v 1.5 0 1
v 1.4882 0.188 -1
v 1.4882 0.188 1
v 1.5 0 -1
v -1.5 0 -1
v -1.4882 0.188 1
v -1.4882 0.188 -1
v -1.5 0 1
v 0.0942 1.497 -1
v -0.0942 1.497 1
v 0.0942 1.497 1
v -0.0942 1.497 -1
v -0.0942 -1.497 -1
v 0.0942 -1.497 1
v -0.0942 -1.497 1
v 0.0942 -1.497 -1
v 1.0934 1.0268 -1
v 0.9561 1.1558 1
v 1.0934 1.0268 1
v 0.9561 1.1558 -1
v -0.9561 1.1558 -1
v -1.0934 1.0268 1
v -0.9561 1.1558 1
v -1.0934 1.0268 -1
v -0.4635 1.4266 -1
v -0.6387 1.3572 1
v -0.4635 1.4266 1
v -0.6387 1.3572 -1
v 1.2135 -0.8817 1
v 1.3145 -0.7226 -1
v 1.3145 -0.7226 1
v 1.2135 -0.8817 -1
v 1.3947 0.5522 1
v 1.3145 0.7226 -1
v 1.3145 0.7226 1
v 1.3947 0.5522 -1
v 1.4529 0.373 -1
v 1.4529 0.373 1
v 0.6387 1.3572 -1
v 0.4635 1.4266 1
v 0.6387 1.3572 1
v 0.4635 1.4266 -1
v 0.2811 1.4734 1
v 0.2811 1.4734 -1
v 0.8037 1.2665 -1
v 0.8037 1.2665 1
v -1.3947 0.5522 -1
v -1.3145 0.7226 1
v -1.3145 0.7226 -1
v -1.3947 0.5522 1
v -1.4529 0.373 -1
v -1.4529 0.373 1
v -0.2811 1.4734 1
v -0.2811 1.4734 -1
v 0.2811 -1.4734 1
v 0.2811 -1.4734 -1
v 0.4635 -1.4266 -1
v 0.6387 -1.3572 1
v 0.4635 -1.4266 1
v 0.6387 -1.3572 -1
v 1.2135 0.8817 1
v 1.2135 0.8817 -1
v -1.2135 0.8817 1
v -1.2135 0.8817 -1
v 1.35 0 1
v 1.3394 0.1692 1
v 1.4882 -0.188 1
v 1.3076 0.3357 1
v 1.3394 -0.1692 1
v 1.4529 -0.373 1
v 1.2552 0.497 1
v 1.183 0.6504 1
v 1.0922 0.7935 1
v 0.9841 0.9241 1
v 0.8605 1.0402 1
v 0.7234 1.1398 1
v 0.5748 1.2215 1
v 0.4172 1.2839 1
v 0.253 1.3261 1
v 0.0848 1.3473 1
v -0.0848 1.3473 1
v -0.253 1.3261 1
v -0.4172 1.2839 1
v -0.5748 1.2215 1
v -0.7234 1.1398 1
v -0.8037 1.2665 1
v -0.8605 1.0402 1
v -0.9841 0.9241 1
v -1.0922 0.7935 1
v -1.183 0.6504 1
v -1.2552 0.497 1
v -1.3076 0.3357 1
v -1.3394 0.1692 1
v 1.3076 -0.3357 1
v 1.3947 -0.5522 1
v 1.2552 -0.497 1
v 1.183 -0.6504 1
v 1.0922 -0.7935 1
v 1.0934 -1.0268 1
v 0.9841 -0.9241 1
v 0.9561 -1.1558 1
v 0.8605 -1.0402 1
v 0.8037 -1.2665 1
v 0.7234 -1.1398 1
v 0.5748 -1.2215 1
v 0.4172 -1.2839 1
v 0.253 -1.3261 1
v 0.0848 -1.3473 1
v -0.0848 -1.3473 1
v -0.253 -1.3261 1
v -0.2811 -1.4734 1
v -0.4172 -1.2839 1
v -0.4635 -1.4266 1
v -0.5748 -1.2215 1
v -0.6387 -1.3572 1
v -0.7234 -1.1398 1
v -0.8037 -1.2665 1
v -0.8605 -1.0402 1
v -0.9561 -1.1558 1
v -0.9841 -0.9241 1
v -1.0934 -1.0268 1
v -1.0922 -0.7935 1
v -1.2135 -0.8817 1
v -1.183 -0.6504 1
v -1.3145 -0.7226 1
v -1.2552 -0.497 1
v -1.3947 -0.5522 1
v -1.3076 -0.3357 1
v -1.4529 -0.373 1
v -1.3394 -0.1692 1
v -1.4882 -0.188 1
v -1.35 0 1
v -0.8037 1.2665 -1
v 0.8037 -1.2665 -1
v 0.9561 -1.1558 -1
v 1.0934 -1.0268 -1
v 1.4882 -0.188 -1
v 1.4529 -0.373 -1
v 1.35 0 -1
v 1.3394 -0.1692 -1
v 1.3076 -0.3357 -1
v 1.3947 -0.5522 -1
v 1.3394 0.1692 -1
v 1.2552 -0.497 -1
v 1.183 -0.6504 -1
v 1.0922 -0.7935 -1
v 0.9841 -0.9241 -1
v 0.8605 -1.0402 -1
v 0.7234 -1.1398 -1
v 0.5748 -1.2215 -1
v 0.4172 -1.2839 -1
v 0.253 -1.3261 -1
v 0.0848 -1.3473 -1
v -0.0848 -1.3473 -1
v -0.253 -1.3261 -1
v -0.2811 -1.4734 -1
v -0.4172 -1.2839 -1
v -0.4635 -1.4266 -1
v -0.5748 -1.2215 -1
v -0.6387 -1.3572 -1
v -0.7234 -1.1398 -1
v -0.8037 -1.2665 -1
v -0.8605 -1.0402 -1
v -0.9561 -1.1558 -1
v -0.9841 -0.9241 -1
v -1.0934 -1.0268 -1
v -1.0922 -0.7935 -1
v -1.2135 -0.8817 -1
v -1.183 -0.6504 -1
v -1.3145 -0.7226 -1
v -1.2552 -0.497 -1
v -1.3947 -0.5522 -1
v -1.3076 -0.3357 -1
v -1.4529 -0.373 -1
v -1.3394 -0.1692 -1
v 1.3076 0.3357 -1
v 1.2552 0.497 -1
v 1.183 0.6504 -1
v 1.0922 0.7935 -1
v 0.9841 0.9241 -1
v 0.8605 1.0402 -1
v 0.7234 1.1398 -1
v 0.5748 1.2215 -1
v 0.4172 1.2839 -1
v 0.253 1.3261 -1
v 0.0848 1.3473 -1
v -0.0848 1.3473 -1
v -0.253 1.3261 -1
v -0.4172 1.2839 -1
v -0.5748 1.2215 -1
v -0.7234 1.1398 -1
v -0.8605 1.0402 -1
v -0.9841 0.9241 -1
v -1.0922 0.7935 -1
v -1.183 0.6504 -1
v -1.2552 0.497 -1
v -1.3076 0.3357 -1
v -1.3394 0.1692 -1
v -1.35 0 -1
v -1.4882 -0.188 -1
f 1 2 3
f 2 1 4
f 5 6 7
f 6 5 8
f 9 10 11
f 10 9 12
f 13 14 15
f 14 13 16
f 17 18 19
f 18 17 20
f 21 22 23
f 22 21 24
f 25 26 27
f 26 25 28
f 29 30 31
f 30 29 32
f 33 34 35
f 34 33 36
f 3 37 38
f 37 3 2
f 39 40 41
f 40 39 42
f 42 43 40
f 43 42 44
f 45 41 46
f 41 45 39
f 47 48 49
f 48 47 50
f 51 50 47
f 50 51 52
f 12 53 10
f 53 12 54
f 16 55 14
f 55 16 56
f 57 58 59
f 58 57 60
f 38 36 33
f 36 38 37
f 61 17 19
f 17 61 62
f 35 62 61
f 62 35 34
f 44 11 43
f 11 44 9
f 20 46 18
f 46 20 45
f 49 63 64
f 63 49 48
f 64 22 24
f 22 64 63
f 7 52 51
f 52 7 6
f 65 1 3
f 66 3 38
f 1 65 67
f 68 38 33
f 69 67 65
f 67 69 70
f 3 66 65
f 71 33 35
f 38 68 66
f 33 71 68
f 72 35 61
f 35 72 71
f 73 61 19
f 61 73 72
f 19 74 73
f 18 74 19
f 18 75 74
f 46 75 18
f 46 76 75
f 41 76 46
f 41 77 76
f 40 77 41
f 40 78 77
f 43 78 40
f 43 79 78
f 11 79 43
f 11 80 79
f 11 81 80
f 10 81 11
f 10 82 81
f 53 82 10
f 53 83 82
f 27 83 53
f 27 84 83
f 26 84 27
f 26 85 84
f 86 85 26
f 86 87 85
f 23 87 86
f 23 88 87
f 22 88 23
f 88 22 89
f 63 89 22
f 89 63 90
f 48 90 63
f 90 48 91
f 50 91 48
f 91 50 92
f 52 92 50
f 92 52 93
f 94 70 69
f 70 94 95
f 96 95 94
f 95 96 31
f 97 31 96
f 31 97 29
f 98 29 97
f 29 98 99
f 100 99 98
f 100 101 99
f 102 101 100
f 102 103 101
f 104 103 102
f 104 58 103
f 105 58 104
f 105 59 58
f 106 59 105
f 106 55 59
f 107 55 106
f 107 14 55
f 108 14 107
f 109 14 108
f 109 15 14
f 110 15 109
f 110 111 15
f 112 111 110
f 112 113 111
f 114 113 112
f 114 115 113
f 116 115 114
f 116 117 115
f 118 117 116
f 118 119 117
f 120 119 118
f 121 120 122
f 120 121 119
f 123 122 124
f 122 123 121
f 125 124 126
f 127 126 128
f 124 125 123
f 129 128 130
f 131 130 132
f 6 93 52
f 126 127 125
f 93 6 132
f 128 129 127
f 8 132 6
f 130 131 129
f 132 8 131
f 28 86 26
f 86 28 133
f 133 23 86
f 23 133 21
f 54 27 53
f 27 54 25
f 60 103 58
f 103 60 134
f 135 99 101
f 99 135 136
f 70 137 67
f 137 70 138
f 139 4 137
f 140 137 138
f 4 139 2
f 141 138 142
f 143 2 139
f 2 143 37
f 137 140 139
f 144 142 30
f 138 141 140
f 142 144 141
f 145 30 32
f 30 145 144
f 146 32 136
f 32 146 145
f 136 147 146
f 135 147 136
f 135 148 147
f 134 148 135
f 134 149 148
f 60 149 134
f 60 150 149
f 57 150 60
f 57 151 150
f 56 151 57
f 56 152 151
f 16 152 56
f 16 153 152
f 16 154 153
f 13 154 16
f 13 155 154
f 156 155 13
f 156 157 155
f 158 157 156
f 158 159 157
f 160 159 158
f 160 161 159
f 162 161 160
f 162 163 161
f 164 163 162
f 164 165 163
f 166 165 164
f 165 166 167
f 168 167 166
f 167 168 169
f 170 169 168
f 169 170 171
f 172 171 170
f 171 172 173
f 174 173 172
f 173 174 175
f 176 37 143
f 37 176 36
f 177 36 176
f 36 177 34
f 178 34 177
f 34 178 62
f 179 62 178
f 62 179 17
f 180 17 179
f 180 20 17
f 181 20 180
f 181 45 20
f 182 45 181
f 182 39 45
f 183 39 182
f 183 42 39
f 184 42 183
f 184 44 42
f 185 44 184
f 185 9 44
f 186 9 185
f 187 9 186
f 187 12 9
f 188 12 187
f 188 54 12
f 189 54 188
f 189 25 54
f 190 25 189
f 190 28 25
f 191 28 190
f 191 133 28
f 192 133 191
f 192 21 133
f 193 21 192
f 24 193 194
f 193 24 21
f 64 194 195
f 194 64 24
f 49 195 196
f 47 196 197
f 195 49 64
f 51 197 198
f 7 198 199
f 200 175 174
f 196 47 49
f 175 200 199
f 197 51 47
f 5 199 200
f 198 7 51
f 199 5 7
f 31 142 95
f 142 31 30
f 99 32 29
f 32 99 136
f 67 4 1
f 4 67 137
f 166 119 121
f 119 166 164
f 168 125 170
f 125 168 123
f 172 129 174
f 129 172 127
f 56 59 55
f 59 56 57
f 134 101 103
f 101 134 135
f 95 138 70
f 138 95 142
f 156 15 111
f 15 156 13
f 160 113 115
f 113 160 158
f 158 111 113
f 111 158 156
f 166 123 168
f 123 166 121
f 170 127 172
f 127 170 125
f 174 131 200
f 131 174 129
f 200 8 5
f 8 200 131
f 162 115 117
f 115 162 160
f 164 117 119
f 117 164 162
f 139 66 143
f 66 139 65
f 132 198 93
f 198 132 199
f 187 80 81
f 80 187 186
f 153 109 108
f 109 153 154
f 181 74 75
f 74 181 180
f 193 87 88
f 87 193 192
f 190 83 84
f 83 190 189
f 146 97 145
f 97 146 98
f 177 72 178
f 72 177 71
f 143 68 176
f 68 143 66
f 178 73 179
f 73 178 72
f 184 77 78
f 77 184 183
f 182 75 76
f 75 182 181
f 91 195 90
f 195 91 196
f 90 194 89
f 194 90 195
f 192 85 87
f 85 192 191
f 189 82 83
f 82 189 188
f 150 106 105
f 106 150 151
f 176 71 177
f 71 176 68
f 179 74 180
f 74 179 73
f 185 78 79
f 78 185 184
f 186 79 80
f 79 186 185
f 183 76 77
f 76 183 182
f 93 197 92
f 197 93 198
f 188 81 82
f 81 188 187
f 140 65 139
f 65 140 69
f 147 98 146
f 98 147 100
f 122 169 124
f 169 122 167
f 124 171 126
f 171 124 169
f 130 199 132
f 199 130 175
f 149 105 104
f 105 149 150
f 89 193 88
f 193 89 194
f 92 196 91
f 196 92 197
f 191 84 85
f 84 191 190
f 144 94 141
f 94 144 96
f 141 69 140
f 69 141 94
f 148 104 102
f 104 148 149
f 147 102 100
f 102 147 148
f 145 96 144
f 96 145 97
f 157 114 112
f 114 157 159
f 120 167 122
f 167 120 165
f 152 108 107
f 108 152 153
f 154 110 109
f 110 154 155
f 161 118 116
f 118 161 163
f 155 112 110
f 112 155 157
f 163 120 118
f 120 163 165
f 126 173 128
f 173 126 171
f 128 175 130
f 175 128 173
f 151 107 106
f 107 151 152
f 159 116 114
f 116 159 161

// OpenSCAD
$fn = 50;


difference() {
	union() {
		translate(v = [0, 0, -1.0000000000]) {
			cylinder(h = 2, r = 1.5000000000);
		}
	}
	union() {
		translate(v = [0, 0, -100.0000000000]) {
			cylinder(h = 200, r = 1.3500000000);
		}
	}
}
